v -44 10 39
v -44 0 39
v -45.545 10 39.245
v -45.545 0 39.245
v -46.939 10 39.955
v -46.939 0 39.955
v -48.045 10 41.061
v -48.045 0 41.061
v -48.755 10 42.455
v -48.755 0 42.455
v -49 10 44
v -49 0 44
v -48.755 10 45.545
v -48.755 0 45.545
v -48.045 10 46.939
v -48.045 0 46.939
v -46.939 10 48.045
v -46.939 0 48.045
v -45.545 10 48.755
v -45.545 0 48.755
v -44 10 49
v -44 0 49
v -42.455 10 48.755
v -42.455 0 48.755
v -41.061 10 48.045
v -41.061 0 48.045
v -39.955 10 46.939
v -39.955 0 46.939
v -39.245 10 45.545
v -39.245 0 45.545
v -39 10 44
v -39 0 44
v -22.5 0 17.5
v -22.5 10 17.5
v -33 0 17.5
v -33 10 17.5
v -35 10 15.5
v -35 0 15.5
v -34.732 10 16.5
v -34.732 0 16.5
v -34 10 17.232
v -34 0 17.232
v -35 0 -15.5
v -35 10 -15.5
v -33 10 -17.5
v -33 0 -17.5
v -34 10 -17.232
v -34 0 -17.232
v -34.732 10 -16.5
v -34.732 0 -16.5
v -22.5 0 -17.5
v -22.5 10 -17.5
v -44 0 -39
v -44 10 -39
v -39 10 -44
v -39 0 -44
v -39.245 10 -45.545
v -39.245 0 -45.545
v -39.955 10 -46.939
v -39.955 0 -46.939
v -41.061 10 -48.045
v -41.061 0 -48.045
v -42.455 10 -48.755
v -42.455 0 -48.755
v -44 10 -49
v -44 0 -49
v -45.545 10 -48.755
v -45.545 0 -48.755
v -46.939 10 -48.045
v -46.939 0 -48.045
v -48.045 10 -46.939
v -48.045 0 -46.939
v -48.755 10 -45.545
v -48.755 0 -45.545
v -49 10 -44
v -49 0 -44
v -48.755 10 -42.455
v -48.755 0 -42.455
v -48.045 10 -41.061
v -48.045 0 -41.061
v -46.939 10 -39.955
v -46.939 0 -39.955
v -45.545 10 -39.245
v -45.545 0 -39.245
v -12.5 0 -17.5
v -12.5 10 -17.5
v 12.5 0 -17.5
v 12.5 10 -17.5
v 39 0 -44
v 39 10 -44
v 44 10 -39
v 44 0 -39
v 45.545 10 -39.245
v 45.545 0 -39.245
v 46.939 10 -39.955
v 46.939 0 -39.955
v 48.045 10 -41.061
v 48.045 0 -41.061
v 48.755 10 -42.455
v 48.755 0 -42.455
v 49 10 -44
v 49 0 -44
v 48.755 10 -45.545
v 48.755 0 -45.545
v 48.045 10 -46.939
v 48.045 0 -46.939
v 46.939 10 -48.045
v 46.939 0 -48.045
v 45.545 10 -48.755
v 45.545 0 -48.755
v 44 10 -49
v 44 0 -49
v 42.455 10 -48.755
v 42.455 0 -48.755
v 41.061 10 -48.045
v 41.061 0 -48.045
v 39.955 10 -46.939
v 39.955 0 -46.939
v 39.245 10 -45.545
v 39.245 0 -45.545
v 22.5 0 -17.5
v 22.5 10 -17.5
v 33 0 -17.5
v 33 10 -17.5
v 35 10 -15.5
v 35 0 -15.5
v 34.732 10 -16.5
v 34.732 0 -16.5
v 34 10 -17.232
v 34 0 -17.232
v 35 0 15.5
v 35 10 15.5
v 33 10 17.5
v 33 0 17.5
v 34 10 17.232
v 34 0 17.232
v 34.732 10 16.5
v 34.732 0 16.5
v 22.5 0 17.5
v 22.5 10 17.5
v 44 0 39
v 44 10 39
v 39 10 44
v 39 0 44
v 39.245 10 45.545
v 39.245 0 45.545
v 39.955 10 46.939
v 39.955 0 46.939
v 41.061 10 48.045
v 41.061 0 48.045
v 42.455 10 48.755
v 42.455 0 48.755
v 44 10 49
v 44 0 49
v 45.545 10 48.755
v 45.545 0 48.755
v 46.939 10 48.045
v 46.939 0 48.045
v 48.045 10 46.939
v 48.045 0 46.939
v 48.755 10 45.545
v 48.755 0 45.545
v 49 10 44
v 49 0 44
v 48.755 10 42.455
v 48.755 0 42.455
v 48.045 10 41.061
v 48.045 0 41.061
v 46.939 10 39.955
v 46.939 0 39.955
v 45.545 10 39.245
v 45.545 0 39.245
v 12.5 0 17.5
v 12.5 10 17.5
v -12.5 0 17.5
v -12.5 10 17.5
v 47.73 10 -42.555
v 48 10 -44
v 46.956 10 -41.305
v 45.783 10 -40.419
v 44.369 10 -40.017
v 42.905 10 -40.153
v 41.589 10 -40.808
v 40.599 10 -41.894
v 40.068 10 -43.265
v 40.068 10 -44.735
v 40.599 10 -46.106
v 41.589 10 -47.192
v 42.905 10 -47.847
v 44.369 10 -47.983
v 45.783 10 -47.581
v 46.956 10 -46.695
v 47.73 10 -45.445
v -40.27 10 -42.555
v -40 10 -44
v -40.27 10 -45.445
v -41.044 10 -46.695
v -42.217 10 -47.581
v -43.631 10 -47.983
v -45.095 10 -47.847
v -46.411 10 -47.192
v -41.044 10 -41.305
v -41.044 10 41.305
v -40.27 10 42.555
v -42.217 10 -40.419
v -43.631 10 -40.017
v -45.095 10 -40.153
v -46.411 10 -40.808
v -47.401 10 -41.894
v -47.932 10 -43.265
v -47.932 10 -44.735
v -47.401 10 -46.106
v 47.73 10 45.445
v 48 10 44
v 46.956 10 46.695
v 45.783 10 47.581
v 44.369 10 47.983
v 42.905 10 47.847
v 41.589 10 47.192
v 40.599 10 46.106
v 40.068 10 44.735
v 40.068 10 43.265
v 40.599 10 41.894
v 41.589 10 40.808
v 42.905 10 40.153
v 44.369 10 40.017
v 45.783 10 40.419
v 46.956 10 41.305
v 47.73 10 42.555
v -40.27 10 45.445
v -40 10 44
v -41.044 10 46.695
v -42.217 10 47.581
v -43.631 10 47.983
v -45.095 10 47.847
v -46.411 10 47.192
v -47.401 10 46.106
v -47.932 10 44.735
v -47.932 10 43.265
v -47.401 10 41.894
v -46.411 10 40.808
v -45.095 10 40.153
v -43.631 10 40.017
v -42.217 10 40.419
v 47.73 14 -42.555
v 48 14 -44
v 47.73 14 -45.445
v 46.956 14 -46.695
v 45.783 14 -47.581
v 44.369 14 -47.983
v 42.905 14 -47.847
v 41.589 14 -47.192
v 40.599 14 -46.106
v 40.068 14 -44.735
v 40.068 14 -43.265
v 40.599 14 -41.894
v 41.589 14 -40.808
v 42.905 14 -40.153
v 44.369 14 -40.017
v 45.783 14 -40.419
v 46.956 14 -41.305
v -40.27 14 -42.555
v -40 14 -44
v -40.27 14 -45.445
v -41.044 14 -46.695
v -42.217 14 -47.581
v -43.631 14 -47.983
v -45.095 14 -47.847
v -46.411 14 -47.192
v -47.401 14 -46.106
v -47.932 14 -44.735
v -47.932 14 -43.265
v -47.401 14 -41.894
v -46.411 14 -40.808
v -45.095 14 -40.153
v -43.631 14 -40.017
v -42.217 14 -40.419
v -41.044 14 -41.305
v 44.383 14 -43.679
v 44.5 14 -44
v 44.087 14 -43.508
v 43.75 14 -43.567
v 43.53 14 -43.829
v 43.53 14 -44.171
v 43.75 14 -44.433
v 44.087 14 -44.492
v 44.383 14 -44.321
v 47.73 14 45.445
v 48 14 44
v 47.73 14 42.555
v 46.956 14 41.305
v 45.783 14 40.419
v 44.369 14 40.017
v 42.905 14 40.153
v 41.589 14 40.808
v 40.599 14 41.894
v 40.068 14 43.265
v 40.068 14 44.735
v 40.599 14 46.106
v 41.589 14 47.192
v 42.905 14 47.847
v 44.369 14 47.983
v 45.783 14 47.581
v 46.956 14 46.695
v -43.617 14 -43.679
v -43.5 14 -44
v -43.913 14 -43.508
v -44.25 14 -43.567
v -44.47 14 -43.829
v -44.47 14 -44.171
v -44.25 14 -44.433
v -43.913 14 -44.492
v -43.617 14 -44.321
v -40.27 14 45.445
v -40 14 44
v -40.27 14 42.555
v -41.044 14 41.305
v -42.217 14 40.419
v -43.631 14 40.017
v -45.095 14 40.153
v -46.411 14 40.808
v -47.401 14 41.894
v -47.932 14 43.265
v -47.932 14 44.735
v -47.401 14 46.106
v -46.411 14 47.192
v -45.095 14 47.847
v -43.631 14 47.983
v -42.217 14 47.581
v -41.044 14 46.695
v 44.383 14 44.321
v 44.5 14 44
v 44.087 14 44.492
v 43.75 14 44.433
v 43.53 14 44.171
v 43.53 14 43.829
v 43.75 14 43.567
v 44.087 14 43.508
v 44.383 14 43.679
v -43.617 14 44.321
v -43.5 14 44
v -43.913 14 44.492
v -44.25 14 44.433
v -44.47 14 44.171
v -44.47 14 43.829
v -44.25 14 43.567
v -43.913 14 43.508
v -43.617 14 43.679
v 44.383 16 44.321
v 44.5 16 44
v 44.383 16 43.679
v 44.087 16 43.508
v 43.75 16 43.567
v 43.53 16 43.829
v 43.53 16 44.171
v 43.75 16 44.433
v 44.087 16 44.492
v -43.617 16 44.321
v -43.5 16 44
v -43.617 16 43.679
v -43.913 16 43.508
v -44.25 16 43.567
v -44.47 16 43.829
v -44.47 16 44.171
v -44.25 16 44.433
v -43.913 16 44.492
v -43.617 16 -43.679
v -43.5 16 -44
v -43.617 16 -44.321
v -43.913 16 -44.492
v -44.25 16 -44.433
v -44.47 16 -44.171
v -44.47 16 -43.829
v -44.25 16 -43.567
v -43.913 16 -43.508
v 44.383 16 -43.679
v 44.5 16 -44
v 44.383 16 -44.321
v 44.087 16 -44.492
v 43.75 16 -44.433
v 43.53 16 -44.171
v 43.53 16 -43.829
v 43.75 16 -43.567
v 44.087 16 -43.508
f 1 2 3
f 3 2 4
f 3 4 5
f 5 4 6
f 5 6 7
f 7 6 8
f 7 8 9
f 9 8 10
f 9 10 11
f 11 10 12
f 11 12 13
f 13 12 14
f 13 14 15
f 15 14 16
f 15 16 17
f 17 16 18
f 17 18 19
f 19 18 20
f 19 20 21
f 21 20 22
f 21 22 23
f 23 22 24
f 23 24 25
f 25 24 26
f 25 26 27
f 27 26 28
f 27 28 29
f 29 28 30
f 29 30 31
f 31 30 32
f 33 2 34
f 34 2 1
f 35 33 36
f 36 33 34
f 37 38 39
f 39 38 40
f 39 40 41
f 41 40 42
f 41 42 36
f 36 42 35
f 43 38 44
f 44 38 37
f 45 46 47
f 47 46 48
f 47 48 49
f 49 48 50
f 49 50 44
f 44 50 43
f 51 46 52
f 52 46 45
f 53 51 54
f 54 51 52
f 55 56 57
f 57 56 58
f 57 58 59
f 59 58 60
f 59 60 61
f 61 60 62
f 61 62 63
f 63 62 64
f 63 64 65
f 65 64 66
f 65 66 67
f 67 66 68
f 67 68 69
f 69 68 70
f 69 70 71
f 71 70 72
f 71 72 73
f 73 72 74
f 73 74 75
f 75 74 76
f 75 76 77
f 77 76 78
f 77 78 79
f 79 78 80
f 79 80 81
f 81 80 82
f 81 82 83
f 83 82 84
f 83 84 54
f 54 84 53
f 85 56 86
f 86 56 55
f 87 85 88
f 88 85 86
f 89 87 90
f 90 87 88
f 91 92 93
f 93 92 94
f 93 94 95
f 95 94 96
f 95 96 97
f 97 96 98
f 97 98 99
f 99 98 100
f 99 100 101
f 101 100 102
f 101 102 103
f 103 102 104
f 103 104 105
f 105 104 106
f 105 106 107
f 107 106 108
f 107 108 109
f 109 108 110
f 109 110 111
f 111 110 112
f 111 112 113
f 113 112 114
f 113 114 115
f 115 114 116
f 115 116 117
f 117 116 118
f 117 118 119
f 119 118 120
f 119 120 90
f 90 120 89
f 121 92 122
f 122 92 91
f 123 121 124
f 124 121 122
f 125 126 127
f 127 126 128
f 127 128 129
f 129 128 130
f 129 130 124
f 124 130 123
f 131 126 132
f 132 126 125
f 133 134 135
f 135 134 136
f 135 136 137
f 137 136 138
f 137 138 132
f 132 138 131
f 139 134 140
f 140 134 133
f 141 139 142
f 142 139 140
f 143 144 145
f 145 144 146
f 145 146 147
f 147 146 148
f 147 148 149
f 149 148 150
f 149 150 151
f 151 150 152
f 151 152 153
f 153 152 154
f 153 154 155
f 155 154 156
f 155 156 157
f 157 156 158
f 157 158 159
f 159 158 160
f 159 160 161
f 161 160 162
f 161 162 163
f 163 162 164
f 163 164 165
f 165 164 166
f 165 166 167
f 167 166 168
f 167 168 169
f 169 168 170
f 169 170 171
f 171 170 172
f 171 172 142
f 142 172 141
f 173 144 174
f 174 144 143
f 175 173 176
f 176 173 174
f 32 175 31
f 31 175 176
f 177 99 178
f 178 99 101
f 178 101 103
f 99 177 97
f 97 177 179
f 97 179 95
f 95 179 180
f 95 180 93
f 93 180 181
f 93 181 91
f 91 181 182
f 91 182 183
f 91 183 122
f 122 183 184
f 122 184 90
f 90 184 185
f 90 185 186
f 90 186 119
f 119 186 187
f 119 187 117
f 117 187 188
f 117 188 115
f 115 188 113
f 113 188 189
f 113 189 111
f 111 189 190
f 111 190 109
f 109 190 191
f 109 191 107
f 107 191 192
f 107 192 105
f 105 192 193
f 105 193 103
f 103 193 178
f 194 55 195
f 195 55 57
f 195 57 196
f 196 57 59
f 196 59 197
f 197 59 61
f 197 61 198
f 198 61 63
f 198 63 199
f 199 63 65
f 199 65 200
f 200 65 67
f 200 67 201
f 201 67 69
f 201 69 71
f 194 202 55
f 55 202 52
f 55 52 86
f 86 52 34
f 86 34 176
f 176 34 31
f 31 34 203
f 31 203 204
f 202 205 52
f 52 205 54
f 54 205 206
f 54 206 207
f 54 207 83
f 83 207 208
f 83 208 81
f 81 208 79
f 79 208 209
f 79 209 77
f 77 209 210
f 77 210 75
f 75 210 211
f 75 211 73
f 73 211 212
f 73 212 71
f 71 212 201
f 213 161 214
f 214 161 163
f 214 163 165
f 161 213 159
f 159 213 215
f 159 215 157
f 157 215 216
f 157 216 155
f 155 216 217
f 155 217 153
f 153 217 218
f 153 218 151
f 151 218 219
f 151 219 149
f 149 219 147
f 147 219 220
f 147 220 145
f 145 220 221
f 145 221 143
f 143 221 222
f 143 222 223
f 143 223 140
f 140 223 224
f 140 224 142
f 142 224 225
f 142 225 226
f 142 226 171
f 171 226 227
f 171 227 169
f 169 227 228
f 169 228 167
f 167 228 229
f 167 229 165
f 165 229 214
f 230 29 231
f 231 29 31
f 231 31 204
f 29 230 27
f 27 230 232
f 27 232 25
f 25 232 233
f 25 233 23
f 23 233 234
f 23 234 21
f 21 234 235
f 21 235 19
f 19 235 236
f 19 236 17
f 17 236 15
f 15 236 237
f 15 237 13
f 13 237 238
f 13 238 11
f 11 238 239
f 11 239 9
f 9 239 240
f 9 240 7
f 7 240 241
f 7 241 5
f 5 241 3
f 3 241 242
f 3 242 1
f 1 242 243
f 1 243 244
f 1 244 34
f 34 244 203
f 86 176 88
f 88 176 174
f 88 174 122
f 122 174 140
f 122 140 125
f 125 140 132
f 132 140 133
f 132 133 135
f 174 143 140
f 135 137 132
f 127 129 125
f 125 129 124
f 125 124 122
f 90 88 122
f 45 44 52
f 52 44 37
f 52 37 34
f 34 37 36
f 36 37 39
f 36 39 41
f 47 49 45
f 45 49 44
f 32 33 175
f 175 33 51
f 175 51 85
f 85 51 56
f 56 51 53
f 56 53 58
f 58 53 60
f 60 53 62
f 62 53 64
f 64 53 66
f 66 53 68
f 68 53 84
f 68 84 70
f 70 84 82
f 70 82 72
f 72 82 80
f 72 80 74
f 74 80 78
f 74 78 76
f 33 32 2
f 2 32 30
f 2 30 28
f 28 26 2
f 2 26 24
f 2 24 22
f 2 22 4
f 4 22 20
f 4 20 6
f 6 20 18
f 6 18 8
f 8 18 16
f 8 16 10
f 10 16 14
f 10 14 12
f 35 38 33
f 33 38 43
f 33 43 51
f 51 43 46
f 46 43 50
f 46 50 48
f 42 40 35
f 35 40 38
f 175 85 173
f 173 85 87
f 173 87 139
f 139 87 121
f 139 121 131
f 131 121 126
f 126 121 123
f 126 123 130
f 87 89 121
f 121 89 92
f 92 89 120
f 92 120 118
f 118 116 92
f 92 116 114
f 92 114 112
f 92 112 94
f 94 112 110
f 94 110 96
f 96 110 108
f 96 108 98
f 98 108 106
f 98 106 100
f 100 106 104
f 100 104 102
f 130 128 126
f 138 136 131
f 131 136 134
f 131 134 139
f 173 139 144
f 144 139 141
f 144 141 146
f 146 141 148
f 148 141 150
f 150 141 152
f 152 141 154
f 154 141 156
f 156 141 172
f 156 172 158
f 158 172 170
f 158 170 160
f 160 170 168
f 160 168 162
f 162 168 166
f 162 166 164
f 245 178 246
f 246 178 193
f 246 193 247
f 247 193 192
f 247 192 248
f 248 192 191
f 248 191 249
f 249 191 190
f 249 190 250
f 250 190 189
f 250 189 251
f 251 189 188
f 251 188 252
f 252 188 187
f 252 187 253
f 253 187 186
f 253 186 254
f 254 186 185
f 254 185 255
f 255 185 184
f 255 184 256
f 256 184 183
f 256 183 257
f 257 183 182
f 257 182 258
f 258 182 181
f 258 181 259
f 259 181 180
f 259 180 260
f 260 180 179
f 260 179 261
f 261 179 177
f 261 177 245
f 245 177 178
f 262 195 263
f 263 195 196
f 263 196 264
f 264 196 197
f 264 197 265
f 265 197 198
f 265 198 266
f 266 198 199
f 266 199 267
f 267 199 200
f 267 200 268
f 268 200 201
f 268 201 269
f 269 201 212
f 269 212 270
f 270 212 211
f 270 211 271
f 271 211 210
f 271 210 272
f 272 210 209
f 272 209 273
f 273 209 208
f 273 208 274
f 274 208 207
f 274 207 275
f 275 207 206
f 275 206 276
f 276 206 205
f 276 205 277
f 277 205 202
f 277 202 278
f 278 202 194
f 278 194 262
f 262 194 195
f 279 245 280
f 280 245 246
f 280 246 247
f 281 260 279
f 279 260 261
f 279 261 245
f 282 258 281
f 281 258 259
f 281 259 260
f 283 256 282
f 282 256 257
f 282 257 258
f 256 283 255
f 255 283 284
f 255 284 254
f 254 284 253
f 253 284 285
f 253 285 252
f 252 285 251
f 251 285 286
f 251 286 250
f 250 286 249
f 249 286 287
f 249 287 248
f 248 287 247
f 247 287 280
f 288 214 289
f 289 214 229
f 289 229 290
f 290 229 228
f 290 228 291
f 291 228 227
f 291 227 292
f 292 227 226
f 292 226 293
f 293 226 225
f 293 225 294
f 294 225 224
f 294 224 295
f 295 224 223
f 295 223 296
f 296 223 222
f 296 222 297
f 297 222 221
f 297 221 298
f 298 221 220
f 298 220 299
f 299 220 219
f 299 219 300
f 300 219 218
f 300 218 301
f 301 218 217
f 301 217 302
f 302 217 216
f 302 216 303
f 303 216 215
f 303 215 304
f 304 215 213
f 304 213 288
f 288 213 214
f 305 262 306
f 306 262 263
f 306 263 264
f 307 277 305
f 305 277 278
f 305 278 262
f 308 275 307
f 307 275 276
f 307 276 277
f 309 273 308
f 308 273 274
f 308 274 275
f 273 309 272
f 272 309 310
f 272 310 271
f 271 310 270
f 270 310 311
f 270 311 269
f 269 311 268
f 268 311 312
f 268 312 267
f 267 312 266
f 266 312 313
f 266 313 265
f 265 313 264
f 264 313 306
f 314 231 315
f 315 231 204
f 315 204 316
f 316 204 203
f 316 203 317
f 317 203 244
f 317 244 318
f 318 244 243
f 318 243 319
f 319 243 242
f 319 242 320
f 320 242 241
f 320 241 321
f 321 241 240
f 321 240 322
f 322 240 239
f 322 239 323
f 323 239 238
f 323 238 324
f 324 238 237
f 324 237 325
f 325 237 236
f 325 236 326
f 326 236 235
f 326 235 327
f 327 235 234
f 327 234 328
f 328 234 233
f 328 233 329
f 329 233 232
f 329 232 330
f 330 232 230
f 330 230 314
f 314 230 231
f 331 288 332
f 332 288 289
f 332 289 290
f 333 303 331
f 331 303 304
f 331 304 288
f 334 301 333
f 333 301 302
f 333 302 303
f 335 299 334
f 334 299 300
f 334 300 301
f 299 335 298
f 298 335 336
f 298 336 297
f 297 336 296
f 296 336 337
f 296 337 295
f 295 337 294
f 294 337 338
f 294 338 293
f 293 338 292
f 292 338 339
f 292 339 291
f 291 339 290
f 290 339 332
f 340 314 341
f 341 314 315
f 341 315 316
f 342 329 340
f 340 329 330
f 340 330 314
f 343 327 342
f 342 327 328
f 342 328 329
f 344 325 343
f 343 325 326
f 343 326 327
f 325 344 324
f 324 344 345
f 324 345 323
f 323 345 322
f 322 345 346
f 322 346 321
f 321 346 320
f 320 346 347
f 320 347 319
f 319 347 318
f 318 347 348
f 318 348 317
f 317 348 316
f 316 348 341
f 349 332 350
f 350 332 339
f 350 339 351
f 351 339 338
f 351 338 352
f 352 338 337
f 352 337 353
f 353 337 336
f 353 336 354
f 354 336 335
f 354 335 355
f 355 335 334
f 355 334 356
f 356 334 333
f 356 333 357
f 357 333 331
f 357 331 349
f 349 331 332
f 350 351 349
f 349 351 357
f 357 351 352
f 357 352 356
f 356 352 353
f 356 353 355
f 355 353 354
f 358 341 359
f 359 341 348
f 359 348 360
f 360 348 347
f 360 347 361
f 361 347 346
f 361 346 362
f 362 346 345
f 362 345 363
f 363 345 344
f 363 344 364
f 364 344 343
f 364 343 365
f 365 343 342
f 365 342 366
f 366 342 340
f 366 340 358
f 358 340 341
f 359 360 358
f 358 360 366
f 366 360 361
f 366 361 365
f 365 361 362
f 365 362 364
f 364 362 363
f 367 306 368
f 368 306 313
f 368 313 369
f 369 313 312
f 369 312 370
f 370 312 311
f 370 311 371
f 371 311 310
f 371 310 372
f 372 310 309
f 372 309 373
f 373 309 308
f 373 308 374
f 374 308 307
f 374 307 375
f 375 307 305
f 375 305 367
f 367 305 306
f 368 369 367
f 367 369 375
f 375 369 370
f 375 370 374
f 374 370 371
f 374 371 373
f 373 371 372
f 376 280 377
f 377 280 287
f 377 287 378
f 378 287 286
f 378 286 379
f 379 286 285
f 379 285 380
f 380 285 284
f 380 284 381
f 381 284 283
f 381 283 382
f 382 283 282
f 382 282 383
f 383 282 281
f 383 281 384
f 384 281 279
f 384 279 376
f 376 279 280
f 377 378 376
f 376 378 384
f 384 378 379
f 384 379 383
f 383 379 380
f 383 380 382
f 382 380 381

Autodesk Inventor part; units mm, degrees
ref_plane "YZ Plane" through (0, 0, 0) normal (1, 0, 0) x (0, 1, 0)
ref_plane "XZ Plane" through (0, 0, 0) normal (0, 1, 0) x (-1, 0, 0)
ref_plane "XY Plane" through (0, 0, 0) normal (0, 0, 1) x (1, 0, 0)
sketch "Sketch1" plane through (0, 0, 0) normal (0, 1, 0) x (-1, 0, 0)
  line L0 (49, 49) -> (-49, 49)
  line L1 (-49, 49) -> (-49, -49)
  line L2 (-49, -49) -> (49, -49)
  line L3 (49, -49) -> (49, 49)
  line L4 (49, 49) -> (-49, -49)
  line L5 (49, -49) -> (-49, 49)
  circle A0 centre (44, 44) radius 5
  line L6 (0, 0) -> (0, 5)
  line L7 (0, 0) -> (5, 0)
  line L8 (5, 0) -> (44, 39)
  line L9 (39, 44) -> (0, 5)
  circle A1 centre (-44, 44) radius 5
  line L10 (-44, 39) -> (-5, 0)
  line L11 (0, 5) -> (-39, 44)
  circle A2 centre (-44, -44) radius 5
  line L12 (-39, -44) -> (0, -5)
  line L13 (-5, 0) -> (-44, -39)
  circle A3 centre (44, -44) radius 5
  line L14 (44, -39) -> (5, 0)
  line L15 (0, -5) -> (39, -44)
  line L16 (-33, 17.5) -> (33, 17.5)
  line L17 (35, 15.5) -> (35, -15.5)
  line L18 (33, -17.5) -> (-33, -17.5)
  line L19 (-35, -15.5) -> (-35, 15.5)
  line L20 (-35, 17.5) -> (35, -17.5) construction
  line L21 (35, 17.5) -> (-35, -17.5) construction
  arc A4 (35, 15.5) -> (33, 17.5) centre (33, 15.5) ccw
  arc A5 (33, -17.5) -> (35, -15.5) centre (33, -15.5) ccw
  arc A6 (-35, -15.5) -> (-33, -17.5) centre (-33, -15.5) ccw
  arc A7 (-33, 17.5) -> (-35, 15.5) centre (-33, 15.5) ccw
  point P0 (12.5, 17.5)
  point P1 (-12.5, 17.5)
  point P2 (-22.5, 17.5)
  point P3 (-22.5, -17.5)
  point P4 (-12.5, -17.5)
  point P5 (12.5, -17.5)
  point P6 (22.5, -17.5)
  point P7 (22.5, 17.5)
  dimension "d0" = 98
  dimension "d1" = 98
  dimension "d2" = 10
  dimension "d3" = 49
  dimension "d4" = 49
  dimension "d7" = 360
  dimension "d10" = 70
  dimension "d11" = 35
  dimension "d12" = 2
  dimension "d13" = 2
  dimension "d14" = 2
  dimension "d15" = 2
extrude "Extrusion1" add sketch "Sketch1" along normal blind 10 contours A0 L4 | A0 L4 | A1 L5 | A0 L4 L16 L9 | A3 L5 | L8 L16 L4 A0 | L11 L16 L5 A1 | L5 A1 | L16 L4 L6 L9 | L9 L11 L16 | A3 L5 L18 L14 | A3 L5 | L16 A4 L17 A5 L18 L14 L8 | L8 L7 L4 L16 | L5 L16 L10 A1 | L11 L6 L5 L16 | A3 L15 L18 L5 | L18 L5 L7 L14 | L5 L18 L15 L12 L4 | L4 L18 L13 L10 L16 L5 | A2 L4 | A2 L4 | L18 L12 A2 L4 | L4 A2 L13 L18 | L10 L13 L18 A6 L19 A7 L16 | L18 L12 L15
sketch "Sketch2" plane through (0, 10, 0) normal (0, 1, 0) x (1, 0, 0)
  arc A0 (-44, -39) -> (-39, -44) centre (-44, -44) ccw projected
  circle A1 centre (-44, -44) radius 4
  arc A2 (-39, 44) -> (-44, 39) centre (-44, 44) ccw projected
  circle A3 centre (-44, 44) radius 4
  arc A4 (44, 39) -> (39, 44) centre (44, 44) ccw projected
  circle A5 centre (44, 44) radius 4
  arc A6 (39, -44) -> (44, -39) centre (44, -44) ccw projected
  circle A7 centre (44, -44) radius 4
  point P0 (0, 0)
  dimension "d18" = 8
  dimension "d19" = 8
  dimension "d20" = 8
  dimension "d21" = 8
extrude "Extrusion2" add sketch "Sketch2" along normal blind 4
sketch "Sketch3" plane through (-44, 14, 44) normal (0, 1, 0) x (1, 0, 0)
  circle A0 centre (0, 0) radius 0.5
  point P0 (44, 44)
  dimension "d24" = 1
sketch "Sketch4" plane through (-44, 14, -44) normal (0, 1, 0) x (1, 0, 0)
  circle A0 centre (0, 0) radius 4 projected
  circle A1 centre (0, 0) radius 0.5
  point P0 (44, -44)
  dimension "d25" = 1
sketch "Sketch5" plane through (44, 14, -44) normal (0, 1, 0) x (1, 0, 0)
  circle A0 centre (0, 0) radius 4 projected
  circle A1 centre (0, 0) radius 0.5
  point P0 (-44, -44)
  dimension "d26" = 1
sketch "Sketch6" plane through (44, 14, 44) normal (0, 1, 0) x (1, 0, 0)
  circle A0 centre (0, 0) radius 4 projected
  circle A1 centre (0, 0) radius 0.5
  point P0 (-44, 44)
  dimension "d27" = 1
extrude "Extrusion3" add sketch "Sketch6" along normal blind 2 contours A1
extrude "Extrusion4" add sketch "Sketch3" along normal blind 2
extrude "Extrusion5" add sketch "Sketch4" along normal blind 2 contours A1
extrude "Extrusion6" add sketch "Sketch5" along normal blind 2 contours A1
properties part number "DroneBase"
